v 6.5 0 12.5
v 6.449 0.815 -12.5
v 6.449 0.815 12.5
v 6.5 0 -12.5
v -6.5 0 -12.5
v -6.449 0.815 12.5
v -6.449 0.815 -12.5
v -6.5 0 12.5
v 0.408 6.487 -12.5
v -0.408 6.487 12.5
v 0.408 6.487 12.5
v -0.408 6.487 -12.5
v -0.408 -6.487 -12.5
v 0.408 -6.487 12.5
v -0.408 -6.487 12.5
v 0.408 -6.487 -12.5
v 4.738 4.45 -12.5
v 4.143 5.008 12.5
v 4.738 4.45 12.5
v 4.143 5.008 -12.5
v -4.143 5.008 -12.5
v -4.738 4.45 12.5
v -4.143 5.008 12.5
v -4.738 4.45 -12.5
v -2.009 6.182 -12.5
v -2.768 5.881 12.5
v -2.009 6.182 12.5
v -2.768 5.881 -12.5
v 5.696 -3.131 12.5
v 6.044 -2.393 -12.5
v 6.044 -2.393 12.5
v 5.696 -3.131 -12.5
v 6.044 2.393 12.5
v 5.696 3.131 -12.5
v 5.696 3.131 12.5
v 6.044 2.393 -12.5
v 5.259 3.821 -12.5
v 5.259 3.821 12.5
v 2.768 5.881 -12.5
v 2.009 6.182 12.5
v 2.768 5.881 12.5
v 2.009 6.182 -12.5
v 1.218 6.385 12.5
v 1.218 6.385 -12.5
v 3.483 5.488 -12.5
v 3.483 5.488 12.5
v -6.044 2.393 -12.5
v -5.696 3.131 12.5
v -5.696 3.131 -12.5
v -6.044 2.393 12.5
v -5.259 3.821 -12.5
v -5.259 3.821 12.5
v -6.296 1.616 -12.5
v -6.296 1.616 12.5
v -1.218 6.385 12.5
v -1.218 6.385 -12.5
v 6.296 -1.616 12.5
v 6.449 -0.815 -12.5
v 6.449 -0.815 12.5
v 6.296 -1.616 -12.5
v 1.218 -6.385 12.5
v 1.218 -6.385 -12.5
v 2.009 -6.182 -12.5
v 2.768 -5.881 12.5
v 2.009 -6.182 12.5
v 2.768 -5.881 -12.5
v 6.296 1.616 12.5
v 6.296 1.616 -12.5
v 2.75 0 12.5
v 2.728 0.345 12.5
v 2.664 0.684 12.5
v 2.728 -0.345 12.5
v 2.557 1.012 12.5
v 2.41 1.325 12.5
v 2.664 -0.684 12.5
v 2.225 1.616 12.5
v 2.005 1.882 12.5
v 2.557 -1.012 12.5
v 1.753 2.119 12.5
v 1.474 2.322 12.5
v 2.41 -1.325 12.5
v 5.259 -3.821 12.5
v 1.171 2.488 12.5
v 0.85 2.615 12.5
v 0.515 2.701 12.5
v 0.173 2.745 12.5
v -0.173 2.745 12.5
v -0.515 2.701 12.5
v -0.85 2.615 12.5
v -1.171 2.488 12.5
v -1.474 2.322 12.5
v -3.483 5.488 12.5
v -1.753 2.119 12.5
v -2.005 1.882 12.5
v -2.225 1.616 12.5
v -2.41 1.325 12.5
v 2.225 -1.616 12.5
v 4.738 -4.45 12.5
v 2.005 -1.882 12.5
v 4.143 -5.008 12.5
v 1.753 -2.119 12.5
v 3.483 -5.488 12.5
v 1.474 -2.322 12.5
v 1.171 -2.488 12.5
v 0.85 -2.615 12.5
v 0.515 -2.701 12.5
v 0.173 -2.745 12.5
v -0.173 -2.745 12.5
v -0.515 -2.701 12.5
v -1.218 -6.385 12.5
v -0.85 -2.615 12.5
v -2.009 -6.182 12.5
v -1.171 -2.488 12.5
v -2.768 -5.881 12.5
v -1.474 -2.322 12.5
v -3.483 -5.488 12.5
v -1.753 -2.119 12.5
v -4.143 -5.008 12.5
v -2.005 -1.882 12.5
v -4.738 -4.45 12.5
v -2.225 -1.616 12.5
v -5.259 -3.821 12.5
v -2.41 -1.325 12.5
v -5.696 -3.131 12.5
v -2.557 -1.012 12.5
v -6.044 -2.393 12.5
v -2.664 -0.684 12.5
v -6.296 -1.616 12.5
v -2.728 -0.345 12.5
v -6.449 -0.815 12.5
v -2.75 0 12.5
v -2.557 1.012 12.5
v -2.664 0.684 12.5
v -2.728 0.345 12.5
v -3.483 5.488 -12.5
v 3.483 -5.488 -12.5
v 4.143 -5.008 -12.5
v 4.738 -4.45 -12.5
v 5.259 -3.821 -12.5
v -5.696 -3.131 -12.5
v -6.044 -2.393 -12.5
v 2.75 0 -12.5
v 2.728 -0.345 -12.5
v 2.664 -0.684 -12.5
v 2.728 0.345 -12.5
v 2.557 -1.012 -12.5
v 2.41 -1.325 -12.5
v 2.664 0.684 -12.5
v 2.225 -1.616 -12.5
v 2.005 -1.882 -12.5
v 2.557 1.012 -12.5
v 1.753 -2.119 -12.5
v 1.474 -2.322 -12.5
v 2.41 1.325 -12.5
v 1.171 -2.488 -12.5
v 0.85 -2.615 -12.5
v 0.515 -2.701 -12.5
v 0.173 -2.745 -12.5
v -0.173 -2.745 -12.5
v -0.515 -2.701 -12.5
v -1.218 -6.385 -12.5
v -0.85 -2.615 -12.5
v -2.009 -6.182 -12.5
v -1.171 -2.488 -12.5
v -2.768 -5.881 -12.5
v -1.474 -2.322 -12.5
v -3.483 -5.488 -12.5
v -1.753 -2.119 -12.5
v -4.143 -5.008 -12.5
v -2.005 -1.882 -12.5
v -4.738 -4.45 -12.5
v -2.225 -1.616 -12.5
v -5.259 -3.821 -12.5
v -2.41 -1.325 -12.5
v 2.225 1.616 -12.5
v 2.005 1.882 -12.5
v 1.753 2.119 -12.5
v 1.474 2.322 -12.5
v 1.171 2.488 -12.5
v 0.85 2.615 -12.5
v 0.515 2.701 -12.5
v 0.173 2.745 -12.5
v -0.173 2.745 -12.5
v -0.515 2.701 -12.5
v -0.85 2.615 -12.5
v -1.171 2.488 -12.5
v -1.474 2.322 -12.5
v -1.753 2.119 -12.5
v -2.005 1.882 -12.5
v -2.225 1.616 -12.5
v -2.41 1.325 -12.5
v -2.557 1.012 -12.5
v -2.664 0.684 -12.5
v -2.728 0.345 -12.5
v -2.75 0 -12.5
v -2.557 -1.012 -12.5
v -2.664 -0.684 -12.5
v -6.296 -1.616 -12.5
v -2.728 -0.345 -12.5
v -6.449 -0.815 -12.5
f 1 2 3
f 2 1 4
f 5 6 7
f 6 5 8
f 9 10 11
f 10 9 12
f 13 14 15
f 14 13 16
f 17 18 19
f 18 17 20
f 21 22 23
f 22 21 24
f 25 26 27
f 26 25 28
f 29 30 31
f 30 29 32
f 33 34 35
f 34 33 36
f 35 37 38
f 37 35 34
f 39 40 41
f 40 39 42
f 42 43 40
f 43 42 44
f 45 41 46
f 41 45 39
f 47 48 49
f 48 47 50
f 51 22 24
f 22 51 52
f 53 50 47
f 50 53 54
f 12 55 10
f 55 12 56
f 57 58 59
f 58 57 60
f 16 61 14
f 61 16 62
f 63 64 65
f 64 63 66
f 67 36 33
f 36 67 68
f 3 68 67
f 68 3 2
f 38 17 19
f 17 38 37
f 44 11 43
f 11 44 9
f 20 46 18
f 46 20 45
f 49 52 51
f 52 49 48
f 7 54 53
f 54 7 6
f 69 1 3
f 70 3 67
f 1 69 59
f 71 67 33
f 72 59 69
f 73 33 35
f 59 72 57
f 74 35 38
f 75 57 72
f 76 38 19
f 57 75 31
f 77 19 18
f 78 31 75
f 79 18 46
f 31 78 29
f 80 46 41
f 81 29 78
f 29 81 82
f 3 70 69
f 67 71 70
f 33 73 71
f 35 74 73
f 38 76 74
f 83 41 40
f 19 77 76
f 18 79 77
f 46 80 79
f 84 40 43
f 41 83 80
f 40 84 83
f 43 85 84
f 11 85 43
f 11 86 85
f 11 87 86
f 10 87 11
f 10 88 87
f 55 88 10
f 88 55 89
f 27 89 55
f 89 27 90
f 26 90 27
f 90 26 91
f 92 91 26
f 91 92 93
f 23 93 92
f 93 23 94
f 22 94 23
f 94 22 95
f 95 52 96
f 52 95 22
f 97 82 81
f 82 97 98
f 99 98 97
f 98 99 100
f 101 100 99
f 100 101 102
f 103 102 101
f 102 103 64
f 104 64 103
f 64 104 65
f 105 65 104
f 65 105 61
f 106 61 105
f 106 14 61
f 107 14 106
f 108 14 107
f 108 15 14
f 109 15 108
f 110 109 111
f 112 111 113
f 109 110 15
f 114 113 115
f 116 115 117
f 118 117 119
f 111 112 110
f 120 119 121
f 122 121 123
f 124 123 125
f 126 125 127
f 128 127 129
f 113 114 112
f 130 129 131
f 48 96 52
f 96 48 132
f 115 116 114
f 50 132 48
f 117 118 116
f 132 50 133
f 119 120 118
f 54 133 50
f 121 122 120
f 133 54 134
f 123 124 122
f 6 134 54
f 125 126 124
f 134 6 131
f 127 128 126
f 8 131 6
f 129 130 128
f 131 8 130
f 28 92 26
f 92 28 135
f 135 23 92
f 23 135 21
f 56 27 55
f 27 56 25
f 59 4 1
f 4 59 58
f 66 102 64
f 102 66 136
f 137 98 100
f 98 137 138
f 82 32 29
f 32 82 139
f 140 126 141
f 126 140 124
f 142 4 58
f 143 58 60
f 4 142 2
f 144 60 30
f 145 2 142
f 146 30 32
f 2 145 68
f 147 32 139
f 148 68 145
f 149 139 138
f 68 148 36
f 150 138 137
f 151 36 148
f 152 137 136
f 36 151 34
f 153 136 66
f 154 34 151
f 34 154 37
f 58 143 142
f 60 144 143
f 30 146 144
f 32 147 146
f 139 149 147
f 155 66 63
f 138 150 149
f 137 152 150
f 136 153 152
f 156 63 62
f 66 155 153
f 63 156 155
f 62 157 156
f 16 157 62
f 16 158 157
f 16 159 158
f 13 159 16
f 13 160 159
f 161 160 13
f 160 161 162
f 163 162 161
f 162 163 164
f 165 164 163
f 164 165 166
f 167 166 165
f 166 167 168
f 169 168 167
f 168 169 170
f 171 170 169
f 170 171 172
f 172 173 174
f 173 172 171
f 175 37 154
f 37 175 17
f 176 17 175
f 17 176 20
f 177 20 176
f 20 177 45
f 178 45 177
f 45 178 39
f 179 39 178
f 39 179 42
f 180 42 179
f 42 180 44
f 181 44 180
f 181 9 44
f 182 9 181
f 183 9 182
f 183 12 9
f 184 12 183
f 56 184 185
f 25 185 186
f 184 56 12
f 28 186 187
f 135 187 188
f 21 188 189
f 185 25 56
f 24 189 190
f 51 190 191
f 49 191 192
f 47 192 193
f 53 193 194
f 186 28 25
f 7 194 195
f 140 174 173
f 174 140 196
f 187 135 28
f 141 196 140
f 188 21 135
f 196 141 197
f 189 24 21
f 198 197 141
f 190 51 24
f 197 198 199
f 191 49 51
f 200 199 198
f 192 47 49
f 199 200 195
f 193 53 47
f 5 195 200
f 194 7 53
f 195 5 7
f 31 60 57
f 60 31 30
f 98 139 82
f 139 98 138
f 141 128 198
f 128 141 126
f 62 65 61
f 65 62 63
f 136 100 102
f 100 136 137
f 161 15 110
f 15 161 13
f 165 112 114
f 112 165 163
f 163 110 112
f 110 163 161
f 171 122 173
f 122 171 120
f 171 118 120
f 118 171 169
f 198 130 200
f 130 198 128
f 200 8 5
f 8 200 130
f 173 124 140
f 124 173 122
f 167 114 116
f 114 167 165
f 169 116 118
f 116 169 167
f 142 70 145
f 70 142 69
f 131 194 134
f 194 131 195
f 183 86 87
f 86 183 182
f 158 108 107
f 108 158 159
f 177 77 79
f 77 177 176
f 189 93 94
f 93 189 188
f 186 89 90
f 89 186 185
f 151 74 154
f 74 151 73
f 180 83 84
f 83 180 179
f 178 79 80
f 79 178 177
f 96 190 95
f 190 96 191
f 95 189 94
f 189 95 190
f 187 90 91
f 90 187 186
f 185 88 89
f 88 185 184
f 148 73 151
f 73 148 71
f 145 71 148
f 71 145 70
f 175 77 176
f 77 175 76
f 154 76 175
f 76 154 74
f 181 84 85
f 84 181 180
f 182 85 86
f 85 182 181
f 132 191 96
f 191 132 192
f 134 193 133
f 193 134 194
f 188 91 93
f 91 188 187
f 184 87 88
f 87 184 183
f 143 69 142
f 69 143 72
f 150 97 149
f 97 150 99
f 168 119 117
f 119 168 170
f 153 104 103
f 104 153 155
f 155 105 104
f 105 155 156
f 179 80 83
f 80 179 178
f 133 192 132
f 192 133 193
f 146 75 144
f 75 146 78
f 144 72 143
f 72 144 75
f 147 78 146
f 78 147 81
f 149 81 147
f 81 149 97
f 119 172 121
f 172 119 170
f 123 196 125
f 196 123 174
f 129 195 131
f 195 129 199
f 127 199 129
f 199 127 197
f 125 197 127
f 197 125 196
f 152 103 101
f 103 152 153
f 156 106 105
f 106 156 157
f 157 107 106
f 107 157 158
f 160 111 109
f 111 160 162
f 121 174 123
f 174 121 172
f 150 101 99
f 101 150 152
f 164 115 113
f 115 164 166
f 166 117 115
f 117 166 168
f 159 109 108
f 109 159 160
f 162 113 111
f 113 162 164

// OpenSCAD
$fn = 50;


difference() {
	union() {
		translate(v = [0, 0, -12.5000000000]) {
			cylinder(h = 25, r = 6.5000000000);
		}
	}
	union() {
		translate(v = [0, 0, -100.0000000000]) {
			cylinder(h = 200, r = 2.7500000000);
		}
	}
}
